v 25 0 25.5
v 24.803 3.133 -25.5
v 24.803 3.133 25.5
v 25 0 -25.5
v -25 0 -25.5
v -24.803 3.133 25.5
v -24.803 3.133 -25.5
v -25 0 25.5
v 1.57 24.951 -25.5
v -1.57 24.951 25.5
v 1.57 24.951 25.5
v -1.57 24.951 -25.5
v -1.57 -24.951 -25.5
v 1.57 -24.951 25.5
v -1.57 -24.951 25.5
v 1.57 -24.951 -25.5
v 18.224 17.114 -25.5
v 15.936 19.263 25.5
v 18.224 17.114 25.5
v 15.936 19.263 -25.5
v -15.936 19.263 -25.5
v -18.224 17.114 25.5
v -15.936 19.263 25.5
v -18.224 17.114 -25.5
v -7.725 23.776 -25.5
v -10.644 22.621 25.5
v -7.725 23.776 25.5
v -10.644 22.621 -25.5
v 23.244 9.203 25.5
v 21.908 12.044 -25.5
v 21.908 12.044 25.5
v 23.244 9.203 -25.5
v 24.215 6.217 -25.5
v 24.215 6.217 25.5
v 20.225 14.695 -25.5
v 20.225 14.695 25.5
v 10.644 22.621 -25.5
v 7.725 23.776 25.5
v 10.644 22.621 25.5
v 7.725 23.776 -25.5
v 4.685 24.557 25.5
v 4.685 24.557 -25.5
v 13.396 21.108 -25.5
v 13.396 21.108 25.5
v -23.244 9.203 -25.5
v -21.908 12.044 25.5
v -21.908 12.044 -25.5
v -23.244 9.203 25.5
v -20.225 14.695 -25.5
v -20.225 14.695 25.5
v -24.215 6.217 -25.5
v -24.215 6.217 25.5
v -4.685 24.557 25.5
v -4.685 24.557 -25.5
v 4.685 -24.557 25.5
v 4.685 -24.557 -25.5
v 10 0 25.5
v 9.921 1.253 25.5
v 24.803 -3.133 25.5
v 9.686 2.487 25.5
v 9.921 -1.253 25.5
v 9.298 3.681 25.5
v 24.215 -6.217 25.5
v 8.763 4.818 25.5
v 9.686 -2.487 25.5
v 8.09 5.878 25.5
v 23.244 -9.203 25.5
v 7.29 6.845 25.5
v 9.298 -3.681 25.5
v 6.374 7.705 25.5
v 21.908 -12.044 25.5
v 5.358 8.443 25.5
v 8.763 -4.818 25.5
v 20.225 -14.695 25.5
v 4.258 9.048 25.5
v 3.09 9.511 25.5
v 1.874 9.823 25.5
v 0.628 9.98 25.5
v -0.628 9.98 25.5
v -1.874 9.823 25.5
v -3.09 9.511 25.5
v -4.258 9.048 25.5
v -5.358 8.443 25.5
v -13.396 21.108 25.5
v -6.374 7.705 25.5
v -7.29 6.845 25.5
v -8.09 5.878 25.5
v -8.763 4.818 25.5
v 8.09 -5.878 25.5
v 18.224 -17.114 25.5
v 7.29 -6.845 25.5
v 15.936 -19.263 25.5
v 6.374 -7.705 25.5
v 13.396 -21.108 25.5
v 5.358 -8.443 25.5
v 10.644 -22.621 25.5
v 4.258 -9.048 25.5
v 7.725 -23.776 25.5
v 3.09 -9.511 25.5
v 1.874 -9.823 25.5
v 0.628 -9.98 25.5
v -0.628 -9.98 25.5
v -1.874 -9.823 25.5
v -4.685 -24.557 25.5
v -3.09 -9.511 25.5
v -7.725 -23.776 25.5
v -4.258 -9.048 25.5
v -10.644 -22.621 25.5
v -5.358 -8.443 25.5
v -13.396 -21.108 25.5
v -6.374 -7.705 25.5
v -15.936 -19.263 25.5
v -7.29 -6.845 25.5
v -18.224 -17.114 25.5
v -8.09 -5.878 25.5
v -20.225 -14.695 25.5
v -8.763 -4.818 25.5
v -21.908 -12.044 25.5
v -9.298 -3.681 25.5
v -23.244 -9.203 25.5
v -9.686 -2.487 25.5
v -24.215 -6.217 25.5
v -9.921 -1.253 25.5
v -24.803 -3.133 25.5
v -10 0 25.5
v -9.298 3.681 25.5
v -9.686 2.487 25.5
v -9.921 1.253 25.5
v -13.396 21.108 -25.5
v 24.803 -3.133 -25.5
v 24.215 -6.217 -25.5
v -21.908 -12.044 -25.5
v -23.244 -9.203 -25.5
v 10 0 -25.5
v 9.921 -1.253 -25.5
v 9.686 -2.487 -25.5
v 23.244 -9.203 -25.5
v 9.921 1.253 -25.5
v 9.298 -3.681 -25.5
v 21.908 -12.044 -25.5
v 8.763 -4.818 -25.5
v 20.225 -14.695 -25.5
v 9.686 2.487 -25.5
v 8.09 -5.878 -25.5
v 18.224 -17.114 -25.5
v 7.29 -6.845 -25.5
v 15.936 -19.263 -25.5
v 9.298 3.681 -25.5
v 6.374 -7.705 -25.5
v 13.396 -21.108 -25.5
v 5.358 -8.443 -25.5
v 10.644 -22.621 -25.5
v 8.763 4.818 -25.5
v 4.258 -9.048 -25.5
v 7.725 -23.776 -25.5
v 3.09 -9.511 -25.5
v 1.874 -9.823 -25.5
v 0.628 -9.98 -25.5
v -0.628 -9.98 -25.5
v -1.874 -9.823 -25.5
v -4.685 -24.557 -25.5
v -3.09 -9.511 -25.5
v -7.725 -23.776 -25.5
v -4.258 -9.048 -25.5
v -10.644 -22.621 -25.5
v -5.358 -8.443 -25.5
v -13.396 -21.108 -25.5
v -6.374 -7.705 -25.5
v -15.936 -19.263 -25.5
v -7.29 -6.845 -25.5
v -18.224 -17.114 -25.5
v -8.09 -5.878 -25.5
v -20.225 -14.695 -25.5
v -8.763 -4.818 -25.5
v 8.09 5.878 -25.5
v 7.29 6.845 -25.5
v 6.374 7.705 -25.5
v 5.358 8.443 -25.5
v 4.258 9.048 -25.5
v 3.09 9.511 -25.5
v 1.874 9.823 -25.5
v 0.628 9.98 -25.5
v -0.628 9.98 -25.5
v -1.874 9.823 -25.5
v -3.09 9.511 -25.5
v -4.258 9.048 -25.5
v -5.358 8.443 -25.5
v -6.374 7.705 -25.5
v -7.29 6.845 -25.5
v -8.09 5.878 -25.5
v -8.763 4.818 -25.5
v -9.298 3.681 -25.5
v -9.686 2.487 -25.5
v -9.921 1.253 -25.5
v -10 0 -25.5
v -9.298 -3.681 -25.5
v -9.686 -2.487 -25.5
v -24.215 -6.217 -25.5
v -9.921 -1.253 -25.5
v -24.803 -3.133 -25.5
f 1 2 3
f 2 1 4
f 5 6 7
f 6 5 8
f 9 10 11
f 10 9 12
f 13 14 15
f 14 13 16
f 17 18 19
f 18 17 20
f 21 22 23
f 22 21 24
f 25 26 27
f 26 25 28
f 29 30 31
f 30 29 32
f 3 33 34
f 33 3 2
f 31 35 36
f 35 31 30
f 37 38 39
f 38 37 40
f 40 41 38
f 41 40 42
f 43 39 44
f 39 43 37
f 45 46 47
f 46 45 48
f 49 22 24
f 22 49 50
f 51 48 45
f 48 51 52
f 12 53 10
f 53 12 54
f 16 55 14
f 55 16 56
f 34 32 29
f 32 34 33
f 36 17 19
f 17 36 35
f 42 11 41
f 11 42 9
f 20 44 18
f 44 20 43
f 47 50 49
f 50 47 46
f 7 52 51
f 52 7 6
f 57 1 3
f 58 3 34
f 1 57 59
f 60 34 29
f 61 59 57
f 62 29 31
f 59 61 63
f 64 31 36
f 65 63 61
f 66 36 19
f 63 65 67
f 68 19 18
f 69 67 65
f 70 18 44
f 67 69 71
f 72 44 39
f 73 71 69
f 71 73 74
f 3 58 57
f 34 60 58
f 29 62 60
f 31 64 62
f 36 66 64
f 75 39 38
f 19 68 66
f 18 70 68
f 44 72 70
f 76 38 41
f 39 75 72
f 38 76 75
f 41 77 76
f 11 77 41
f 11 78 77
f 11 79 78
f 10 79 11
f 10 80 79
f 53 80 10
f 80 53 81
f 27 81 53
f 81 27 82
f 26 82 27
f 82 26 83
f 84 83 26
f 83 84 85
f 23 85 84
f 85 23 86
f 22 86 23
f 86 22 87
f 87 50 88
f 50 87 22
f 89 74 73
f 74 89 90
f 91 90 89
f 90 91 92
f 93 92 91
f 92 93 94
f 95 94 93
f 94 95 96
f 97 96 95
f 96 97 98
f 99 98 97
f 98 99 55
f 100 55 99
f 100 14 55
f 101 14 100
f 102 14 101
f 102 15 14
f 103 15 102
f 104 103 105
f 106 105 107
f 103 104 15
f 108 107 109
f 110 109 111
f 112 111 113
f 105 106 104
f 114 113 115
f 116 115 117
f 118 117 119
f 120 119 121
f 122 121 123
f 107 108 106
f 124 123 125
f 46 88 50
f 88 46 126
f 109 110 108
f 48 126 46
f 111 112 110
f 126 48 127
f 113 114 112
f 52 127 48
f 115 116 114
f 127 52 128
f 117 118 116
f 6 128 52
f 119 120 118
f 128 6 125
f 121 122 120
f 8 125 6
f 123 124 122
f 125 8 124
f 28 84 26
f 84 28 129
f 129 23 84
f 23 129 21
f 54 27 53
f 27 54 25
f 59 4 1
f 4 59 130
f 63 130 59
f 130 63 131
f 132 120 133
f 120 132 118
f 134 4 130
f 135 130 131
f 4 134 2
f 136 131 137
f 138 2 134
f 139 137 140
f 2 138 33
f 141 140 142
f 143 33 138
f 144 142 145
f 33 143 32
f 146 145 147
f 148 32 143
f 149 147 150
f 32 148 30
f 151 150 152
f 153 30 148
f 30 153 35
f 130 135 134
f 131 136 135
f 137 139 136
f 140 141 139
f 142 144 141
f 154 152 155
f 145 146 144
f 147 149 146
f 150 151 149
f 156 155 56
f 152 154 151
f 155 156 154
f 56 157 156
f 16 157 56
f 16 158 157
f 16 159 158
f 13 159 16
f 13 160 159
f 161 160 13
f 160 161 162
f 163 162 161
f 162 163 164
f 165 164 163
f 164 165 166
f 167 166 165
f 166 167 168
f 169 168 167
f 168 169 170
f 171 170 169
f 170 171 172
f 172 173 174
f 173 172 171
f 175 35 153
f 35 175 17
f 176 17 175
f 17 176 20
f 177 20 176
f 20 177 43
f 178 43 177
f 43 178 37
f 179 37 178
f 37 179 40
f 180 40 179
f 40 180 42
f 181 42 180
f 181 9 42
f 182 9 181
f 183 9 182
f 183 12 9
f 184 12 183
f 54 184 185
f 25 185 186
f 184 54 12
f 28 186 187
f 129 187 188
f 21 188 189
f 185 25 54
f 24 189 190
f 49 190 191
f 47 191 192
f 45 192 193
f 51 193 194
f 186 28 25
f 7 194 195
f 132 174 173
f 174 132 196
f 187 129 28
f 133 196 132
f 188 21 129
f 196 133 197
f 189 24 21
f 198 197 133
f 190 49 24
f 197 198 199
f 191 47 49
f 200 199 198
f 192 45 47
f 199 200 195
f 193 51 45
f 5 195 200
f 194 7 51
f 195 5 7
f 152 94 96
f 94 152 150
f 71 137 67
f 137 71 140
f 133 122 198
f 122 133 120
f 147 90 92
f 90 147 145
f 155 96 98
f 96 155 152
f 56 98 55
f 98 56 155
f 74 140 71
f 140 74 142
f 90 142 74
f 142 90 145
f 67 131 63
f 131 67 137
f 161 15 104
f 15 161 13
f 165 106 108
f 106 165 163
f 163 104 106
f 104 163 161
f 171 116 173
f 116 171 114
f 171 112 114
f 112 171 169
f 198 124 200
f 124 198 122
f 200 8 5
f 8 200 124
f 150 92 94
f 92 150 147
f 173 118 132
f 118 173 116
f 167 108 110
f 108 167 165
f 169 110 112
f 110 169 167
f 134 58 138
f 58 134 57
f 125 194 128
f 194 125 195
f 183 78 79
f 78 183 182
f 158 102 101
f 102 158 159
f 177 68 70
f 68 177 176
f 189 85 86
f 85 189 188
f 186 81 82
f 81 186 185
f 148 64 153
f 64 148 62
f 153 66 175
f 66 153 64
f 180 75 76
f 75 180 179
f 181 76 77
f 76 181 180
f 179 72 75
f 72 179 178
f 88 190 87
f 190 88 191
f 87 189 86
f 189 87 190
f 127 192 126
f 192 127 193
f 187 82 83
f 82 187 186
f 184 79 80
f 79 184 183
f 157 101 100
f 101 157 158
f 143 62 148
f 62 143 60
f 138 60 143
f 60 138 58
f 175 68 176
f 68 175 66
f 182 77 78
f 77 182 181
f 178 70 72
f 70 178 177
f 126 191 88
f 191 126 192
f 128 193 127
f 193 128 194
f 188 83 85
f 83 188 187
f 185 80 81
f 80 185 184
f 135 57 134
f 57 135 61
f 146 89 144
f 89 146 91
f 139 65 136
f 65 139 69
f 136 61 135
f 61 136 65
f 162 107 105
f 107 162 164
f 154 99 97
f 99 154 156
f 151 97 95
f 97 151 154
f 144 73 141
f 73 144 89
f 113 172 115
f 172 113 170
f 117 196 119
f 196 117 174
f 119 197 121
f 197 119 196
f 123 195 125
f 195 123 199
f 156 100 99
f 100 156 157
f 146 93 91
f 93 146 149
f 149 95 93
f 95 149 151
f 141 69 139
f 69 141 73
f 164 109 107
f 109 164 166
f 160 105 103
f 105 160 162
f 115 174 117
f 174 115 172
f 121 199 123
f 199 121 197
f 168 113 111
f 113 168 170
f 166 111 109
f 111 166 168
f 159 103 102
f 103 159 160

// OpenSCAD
$fn = 50;


difference() {
	union() {
		translate(v = [0, 0, -25.5000000000]) {
			cylinder(h = 51, r = 25.0000000000);
		}
	}
	union() {
		translate(v = [0, 0, -100.0000000000]) {
			cylinder(h = 200, r = 10);
		}
	}
}
